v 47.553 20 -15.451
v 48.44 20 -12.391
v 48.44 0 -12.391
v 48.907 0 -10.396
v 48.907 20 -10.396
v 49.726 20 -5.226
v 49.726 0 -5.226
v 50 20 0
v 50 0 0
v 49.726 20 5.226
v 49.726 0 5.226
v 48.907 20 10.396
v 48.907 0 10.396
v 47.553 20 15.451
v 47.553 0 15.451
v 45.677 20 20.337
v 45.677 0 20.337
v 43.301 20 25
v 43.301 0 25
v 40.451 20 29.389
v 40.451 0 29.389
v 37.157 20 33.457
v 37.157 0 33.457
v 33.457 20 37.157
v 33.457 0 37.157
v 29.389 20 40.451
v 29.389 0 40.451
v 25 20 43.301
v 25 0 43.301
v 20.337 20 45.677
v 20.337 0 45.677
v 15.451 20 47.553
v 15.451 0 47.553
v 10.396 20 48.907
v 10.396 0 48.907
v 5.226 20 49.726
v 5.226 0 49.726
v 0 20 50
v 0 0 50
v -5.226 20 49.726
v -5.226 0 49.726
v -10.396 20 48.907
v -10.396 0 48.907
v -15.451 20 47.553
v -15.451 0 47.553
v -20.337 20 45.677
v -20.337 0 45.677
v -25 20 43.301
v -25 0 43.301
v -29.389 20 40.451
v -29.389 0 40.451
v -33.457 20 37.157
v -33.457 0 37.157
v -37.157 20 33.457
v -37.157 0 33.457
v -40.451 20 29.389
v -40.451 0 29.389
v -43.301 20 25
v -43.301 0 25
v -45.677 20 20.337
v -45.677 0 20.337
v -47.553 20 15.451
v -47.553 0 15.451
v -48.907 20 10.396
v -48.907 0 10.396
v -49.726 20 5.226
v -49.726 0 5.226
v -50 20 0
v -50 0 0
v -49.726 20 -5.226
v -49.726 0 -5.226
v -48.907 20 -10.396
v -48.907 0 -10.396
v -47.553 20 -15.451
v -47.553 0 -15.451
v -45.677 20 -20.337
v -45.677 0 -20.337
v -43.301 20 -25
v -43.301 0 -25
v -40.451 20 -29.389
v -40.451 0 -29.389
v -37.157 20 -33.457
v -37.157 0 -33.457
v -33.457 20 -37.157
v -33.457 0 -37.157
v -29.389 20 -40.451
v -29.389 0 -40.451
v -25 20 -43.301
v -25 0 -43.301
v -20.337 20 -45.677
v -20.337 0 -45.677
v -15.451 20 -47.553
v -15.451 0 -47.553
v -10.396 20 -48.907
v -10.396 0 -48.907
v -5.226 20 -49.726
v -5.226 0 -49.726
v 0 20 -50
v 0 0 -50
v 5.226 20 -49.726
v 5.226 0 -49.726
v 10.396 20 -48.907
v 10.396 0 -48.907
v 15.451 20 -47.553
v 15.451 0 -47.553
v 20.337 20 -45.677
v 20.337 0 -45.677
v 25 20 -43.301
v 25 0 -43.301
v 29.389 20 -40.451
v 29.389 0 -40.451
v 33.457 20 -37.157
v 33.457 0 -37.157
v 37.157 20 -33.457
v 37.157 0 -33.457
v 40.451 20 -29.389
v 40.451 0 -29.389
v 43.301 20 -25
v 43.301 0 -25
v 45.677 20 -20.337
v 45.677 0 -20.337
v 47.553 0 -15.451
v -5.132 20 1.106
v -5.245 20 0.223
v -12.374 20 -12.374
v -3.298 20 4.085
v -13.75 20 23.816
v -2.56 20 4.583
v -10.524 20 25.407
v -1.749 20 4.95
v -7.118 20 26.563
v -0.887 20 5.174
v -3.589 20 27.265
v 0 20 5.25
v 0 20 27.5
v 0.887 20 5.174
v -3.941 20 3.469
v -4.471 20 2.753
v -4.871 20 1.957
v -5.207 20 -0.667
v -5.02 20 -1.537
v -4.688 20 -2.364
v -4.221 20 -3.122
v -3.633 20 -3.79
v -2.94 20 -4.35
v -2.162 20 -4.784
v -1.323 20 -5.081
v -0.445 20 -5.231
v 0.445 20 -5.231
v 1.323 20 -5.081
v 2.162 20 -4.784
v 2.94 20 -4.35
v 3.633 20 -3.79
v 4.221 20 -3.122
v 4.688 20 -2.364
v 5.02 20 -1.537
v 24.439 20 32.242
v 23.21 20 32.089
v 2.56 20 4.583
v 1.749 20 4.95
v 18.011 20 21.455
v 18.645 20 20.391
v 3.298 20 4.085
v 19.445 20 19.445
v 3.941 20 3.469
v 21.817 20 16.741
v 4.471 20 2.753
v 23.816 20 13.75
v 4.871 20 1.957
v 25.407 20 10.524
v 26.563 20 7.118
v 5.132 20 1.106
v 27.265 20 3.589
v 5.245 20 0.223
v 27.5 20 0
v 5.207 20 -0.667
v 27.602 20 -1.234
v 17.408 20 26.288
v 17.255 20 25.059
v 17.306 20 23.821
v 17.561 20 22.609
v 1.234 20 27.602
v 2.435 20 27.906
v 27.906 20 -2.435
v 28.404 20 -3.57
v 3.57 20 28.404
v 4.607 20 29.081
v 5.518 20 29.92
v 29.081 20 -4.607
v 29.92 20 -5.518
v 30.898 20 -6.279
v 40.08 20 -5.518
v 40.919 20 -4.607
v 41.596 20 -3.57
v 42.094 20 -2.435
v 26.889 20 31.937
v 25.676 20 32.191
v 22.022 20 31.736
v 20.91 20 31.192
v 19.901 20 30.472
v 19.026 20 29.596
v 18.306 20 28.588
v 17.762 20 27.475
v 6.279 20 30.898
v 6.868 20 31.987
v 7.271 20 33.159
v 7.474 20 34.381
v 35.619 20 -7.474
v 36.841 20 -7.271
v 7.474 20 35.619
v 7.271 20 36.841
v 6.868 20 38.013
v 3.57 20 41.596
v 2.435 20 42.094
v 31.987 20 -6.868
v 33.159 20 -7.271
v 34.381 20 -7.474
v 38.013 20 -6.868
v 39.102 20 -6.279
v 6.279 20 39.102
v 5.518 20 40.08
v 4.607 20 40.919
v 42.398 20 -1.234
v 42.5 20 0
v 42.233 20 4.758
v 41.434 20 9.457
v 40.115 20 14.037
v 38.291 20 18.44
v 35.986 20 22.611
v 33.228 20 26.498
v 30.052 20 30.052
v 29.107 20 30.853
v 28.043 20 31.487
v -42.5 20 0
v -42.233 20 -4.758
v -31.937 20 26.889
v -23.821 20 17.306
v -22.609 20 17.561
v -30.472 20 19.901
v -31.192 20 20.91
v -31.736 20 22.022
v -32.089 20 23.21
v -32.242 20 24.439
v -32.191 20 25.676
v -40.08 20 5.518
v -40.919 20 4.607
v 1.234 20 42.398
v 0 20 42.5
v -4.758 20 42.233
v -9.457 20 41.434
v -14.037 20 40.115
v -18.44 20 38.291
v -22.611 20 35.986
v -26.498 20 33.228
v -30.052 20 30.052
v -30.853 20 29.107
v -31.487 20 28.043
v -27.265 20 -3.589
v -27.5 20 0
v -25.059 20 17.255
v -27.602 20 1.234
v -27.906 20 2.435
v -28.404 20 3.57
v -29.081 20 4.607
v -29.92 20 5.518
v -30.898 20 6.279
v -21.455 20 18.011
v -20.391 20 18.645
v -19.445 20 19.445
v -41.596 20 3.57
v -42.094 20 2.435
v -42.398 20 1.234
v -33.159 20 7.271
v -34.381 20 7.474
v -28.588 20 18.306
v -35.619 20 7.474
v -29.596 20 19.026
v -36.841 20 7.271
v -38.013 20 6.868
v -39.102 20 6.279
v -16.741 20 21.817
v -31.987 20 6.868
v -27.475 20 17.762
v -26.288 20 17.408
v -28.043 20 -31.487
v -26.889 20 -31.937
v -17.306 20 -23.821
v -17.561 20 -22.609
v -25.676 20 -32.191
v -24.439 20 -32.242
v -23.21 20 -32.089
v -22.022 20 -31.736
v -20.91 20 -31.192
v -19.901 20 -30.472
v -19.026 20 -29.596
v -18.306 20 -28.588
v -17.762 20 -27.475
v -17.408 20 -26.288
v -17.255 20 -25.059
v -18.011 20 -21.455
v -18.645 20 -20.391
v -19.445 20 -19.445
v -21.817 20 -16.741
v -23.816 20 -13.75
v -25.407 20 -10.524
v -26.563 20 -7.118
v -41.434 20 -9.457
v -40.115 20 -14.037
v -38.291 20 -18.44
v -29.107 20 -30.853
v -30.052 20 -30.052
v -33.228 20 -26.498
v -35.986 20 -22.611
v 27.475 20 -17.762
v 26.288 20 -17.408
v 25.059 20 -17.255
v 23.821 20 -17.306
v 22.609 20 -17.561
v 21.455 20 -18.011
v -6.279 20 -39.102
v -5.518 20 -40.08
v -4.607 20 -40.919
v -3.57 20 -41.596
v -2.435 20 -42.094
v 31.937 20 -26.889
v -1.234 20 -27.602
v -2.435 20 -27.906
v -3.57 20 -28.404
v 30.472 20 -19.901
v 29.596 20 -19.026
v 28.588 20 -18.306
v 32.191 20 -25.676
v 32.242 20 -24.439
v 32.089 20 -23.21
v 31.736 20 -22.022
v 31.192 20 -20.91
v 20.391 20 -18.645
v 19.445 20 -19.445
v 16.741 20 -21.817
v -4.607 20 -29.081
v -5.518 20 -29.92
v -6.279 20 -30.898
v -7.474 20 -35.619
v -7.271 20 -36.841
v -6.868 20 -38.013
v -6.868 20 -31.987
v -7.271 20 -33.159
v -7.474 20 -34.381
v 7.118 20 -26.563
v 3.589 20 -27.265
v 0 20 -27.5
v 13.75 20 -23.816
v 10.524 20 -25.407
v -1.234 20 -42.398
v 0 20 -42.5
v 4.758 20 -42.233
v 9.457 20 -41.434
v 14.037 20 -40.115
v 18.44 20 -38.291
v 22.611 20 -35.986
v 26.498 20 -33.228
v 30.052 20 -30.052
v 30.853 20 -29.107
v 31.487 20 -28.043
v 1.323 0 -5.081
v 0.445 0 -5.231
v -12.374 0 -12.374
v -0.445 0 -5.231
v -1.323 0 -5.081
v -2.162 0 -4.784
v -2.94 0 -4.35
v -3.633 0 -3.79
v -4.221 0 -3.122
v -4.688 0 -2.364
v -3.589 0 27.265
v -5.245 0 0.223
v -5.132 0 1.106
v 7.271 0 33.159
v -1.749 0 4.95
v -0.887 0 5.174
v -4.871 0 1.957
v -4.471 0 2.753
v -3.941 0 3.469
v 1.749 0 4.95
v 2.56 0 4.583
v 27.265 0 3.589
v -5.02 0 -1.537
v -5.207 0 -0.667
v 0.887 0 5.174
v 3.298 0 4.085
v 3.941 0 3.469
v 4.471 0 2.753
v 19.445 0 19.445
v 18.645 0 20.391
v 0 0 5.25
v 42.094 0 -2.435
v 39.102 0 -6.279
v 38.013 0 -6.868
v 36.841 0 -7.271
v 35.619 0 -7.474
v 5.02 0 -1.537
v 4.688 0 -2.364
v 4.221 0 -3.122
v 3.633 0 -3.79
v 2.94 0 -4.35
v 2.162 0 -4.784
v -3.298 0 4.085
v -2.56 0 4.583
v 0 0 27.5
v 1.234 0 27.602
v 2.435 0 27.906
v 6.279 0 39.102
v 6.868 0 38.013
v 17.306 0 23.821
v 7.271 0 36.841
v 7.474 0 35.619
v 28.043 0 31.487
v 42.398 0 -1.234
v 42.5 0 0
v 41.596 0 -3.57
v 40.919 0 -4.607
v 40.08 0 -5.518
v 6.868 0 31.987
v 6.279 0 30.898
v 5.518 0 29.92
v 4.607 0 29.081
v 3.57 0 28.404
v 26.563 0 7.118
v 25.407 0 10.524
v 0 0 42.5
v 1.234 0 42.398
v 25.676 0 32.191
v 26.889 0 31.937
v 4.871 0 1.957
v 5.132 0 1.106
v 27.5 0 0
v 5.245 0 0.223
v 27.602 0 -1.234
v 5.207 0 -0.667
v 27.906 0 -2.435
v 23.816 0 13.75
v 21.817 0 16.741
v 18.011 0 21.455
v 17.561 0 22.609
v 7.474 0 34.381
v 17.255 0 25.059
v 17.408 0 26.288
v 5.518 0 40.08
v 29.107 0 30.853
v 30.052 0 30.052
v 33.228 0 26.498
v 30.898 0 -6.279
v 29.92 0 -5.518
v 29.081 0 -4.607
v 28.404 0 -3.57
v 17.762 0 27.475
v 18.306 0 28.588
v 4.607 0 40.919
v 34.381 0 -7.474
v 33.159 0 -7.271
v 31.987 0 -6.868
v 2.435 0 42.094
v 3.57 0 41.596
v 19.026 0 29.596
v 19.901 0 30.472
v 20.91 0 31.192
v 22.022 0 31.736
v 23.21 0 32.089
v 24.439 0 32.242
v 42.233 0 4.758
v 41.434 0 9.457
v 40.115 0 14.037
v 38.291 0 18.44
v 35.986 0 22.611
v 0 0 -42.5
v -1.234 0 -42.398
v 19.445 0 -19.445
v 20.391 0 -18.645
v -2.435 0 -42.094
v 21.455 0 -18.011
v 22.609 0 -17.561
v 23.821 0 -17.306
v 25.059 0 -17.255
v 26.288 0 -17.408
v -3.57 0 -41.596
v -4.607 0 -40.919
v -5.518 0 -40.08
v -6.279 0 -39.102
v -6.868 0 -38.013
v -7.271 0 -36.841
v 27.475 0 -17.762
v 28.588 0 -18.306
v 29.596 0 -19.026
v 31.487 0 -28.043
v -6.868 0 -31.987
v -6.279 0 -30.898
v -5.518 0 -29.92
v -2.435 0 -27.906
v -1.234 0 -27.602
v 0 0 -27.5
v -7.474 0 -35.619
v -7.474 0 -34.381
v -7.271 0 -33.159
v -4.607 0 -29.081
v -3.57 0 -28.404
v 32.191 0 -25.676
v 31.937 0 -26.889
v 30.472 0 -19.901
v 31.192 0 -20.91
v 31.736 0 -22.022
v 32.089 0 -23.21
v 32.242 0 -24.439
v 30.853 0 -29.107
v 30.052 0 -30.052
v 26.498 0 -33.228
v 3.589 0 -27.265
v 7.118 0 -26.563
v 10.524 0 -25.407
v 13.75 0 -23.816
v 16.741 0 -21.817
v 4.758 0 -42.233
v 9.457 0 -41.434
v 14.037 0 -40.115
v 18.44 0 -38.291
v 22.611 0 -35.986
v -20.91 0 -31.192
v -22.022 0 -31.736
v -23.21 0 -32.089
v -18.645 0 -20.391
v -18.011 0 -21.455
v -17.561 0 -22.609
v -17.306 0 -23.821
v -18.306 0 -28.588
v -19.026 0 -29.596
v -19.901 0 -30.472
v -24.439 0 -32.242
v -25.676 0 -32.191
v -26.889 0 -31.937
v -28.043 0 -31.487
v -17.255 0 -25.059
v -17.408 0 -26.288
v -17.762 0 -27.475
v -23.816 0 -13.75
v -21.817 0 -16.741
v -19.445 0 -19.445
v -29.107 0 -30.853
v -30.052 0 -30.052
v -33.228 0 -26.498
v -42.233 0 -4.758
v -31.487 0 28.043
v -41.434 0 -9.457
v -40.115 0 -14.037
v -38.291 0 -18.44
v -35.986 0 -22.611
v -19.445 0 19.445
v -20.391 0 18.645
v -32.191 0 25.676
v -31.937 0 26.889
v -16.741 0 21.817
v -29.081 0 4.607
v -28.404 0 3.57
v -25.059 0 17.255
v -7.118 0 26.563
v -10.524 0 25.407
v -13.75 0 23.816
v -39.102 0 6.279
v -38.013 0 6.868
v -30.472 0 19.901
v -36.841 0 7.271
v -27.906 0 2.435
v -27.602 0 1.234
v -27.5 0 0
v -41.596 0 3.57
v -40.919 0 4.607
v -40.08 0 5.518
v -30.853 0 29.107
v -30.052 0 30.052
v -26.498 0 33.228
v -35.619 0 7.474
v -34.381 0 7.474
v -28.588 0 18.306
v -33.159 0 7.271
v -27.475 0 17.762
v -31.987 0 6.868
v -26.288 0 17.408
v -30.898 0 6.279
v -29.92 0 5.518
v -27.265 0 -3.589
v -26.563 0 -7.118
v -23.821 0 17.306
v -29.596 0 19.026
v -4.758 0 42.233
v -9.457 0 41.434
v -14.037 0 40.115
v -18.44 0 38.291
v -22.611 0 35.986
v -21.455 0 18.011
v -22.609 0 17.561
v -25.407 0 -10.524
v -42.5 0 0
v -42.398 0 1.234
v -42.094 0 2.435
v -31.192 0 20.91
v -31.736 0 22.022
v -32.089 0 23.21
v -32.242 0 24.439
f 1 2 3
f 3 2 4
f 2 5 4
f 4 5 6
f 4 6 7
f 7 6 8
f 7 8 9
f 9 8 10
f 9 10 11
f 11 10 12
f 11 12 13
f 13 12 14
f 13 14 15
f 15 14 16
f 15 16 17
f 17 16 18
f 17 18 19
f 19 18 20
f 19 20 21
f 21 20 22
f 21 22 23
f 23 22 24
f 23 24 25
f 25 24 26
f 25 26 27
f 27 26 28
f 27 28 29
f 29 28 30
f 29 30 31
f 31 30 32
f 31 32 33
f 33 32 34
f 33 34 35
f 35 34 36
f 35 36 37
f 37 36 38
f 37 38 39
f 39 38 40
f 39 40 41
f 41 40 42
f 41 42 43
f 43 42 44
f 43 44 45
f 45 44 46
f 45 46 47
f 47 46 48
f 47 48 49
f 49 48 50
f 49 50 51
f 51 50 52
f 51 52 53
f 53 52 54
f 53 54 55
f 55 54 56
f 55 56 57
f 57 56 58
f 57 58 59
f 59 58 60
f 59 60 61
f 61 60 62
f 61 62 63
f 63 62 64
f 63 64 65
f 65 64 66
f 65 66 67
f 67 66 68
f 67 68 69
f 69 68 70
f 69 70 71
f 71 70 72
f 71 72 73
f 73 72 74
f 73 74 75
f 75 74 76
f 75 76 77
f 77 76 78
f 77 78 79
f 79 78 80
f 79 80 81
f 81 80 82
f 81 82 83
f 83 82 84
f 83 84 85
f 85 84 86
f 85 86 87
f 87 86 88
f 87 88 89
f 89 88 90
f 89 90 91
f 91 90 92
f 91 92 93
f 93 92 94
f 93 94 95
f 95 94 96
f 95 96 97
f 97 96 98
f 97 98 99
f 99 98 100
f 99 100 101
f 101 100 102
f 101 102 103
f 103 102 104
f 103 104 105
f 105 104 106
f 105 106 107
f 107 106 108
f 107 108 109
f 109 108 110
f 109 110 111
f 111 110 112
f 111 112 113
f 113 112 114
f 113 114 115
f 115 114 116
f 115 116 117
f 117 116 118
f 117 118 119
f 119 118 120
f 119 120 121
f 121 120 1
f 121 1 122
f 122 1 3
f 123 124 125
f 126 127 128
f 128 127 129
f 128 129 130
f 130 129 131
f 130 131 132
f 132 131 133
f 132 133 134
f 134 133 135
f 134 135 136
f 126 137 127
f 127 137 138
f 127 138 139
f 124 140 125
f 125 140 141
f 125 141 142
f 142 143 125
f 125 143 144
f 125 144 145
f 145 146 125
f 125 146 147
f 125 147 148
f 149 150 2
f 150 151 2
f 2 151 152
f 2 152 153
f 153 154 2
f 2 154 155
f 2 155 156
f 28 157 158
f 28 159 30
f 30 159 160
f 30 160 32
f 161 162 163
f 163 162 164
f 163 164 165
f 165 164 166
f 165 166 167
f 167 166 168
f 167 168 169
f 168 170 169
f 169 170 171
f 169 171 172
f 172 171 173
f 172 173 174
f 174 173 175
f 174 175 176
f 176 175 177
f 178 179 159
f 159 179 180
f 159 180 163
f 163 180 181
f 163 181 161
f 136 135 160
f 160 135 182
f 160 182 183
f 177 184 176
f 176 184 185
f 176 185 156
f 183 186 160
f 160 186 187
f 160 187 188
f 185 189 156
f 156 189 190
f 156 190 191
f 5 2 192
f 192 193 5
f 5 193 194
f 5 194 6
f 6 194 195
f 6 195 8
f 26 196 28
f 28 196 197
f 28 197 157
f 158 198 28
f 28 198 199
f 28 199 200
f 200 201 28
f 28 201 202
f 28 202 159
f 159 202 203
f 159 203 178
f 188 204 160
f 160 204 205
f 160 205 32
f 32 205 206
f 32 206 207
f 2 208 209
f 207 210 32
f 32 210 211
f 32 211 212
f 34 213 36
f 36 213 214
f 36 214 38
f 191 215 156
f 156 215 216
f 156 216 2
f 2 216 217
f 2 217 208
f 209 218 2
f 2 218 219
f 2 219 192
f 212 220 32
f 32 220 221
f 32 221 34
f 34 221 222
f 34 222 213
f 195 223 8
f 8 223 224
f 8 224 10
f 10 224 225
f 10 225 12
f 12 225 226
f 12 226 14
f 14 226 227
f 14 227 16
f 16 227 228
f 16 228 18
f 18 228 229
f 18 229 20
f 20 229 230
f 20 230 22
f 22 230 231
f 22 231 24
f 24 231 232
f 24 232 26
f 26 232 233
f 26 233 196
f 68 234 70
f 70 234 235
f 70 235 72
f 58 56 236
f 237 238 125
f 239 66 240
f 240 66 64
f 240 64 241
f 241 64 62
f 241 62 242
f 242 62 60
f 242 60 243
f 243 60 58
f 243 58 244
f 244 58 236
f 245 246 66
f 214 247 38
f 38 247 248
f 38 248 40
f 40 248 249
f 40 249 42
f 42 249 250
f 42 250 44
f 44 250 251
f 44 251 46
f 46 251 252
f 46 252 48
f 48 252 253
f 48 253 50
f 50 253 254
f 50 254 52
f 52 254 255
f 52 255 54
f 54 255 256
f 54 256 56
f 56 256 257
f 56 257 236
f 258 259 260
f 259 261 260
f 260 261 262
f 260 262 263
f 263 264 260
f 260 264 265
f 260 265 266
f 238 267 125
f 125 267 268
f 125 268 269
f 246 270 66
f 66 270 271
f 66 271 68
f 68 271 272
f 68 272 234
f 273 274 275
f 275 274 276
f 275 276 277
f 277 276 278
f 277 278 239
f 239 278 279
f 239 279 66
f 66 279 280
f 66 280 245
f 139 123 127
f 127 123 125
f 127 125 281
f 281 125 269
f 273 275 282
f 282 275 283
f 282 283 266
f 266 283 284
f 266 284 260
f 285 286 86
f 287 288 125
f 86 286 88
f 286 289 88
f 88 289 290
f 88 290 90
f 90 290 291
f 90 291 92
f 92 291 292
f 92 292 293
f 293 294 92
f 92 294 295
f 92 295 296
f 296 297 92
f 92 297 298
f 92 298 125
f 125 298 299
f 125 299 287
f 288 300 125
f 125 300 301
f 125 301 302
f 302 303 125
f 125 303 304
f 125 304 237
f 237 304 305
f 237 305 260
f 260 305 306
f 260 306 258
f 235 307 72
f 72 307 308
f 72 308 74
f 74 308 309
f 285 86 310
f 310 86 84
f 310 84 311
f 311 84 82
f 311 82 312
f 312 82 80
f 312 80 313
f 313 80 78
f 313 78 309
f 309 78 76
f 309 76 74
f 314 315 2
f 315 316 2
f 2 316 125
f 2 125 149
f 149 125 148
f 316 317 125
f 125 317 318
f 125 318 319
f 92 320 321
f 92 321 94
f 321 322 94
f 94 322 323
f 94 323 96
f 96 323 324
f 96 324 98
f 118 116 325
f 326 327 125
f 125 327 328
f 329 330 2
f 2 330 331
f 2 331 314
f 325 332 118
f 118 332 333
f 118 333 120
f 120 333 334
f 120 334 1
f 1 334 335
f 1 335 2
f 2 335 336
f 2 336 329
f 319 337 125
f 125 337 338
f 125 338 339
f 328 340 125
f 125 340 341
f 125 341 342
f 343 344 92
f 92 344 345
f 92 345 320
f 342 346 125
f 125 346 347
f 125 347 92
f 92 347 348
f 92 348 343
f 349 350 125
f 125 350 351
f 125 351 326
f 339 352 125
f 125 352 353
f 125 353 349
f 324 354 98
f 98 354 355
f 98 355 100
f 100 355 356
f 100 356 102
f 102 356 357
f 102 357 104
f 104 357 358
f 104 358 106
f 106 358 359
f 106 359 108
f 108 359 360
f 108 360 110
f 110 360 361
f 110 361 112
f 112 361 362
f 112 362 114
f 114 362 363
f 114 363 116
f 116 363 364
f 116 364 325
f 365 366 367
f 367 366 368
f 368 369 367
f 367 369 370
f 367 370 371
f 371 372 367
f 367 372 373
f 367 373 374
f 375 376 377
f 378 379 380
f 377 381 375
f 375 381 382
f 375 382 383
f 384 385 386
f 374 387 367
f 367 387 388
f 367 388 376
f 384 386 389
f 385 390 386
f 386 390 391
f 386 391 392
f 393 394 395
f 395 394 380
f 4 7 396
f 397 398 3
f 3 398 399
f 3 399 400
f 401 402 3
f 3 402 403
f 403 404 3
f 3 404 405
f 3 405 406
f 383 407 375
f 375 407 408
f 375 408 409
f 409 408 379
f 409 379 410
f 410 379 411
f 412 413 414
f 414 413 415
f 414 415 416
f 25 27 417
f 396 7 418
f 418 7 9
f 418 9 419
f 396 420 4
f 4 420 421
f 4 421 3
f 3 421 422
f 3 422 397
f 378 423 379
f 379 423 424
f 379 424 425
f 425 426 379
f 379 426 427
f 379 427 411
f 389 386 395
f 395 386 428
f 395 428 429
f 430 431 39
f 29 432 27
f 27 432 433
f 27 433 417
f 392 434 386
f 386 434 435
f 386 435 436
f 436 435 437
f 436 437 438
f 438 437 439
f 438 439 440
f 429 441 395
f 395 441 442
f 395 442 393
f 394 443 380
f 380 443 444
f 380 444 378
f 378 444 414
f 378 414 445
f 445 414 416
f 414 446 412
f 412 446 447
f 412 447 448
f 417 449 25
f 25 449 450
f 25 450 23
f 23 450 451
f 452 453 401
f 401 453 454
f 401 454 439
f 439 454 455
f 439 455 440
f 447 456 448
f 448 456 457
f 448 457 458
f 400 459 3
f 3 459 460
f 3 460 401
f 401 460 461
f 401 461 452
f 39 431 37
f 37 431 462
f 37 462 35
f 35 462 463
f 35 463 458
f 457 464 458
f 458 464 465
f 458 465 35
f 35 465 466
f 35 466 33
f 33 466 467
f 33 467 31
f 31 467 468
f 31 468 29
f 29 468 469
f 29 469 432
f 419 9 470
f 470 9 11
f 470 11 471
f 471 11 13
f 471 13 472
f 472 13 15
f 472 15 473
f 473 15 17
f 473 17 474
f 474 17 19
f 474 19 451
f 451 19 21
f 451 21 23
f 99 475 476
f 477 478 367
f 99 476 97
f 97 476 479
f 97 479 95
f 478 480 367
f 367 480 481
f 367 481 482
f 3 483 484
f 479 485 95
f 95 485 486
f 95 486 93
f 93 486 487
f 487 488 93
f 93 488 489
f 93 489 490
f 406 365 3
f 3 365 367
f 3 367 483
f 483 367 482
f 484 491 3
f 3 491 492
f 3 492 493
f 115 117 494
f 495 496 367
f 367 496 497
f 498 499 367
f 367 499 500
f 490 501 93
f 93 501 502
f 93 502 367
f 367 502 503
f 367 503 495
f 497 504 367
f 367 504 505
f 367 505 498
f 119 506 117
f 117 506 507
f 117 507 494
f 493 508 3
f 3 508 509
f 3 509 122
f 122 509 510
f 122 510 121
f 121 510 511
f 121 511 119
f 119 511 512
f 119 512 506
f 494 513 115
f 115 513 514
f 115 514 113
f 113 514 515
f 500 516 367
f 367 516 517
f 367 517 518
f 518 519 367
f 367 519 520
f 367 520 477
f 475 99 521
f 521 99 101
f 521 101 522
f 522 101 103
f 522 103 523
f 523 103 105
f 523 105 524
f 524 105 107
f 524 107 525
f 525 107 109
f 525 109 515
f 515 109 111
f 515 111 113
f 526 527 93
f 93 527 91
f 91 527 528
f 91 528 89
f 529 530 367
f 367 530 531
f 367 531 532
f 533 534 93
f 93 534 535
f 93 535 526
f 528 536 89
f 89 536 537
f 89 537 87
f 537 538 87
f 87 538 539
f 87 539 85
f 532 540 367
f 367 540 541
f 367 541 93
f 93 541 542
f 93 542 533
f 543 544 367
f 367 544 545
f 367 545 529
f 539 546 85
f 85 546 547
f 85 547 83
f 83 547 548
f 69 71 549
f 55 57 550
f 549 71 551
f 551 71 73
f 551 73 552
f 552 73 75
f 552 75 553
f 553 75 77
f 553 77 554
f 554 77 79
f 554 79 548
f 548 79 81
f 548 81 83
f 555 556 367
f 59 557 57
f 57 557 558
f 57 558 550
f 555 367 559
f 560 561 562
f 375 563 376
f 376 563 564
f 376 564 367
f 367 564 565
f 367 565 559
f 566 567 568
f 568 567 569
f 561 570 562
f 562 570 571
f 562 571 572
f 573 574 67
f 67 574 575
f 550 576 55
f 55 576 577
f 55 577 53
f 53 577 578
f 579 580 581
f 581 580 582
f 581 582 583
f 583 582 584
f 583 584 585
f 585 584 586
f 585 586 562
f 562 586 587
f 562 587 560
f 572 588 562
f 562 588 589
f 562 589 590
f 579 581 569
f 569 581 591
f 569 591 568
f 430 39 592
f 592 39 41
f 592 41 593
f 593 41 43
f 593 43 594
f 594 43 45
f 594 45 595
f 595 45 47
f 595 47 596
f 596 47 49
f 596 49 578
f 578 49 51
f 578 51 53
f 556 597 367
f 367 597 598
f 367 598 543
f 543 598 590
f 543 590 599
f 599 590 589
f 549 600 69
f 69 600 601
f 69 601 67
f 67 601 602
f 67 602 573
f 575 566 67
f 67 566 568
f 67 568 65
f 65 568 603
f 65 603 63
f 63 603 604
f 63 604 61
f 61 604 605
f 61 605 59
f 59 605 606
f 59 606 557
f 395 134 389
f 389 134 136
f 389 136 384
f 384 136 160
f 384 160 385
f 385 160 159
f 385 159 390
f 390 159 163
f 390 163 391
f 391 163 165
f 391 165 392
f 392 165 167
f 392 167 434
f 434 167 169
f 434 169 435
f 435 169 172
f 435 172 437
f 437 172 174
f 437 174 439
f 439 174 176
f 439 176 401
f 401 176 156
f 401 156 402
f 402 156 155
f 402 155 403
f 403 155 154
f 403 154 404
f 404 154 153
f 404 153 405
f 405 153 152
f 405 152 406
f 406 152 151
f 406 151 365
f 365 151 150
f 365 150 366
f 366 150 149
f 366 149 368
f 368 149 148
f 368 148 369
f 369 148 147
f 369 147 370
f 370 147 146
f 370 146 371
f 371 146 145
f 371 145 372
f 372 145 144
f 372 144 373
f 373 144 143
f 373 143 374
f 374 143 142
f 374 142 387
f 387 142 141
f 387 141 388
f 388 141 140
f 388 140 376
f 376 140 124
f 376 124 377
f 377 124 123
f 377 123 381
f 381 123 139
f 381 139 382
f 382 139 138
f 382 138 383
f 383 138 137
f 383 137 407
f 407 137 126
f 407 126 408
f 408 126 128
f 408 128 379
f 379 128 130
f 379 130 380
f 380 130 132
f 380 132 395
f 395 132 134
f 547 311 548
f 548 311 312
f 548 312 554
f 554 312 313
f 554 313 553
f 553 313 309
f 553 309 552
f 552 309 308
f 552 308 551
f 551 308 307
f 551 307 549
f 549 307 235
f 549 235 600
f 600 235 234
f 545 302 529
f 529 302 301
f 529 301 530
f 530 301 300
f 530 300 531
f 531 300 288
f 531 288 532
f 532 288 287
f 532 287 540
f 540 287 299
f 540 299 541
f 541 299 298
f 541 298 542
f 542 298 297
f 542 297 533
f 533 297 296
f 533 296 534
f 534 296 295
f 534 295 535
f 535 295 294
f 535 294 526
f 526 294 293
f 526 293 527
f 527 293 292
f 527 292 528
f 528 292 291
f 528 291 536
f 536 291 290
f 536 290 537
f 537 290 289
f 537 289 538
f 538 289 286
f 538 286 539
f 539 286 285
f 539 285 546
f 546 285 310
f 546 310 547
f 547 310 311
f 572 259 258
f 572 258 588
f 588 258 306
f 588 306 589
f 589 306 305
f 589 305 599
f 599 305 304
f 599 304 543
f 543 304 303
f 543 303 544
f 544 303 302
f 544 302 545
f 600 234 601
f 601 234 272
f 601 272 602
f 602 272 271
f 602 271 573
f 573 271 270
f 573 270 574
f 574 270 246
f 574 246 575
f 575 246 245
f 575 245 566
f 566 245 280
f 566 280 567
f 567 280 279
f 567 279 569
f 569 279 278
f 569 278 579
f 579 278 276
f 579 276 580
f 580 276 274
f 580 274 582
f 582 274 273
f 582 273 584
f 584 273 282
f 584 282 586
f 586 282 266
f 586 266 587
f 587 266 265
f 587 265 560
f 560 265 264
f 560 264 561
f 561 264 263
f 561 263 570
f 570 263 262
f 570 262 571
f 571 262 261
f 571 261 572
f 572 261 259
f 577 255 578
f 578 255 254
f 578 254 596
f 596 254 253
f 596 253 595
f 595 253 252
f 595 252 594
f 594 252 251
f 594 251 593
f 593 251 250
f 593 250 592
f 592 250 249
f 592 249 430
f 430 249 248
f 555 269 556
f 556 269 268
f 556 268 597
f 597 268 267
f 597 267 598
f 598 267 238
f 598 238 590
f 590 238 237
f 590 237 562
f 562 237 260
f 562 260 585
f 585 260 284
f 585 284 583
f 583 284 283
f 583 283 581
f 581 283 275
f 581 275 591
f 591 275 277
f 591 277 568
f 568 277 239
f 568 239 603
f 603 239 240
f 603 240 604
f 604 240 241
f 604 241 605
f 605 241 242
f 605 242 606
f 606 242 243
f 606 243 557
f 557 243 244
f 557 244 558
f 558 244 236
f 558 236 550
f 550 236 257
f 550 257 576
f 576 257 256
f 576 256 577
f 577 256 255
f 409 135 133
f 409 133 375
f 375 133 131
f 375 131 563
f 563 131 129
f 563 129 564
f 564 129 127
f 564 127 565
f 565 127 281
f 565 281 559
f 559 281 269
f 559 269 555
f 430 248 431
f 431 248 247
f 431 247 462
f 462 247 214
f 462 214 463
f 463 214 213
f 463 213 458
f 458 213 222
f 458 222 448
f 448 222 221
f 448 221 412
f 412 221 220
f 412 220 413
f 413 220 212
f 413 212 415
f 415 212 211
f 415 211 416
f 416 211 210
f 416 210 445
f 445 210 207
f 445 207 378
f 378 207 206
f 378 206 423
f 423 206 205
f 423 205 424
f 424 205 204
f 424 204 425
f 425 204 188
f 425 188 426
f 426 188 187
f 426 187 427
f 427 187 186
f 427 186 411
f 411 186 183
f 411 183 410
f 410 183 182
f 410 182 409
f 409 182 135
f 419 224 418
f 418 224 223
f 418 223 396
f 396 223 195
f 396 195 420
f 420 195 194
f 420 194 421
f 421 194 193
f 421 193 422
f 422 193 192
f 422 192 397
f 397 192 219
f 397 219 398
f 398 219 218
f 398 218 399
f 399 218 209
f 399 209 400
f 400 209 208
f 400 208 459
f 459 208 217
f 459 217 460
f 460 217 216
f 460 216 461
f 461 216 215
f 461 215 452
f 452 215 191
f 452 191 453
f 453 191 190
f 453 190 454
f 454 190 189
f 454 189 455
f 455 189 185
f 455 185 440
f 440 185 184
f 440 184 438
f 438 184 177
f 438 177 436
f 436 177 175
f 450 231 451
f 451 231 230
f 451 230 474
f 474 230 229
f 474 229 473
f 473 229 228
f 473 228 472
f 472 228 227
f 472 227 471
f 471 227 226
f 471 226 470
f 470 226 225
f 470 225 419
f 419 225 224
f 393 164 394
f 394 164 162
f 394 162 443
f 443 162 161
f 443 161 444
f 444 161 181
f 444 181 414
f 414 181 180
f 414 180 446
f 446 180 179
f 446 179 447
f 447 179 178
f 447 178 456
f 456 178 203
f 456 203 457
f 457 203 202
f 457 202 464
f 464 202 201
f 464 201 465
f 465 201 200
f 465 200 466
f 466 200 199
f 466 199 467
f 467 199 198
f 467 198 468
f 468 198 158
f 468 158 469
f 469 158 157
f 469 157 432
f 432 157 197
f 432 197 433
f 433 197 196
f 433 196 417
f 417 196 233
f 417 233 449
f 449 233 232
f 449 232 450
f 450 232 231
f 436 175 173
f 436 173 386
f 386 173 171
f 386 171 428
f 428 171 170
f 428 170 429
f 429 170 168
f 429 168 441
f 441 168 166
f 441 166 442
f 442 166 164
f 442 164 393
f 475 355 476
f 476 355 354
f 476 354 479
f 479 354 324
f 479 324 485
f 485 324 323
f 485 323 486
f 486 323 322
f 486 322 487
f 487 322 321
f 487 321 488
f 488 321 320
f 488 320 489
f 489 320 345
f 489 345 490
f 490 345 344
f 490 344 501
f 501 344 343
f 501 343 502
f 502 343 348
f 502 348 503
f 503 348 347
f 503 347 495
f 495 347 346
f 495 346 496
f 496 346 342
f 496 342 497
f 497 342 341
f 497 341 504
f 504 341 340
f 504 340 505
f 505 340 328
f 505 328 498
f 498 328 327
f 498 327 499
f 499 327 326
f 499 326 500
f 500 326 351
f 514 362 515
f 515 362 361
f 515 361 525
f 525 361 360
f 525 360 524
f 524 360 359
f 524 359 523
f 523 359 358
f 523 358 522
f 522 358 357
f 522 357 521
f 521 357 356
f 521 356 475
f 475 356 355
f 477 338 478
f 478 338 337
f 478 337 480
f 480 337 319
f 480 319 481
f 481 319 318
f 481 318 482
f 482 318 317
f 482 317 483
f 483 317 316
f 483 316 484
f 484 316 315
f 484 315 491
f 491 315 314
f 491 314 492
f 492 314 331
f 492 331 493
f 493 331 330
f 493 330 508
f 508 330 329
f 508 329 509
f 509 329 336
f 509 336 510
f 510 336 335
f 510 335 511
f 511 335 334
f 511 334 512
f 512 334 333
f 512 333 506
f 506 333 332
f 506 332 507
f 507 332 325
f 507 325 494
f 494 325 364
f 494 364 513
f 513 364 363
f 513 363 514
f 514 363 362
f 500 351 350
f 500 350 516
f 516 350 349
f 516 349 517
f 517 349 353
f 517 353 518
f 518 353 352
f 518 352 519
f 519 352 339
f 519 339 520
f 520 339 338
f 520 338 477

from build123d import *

# Parameters (mm, degrees)
SKETCH_1_R          = 50
EXTRUDE_1_DEPTH     = 20
SKETCH_2_R          = 5.25
CUT_EXTRUDE_1_DEPTH = 20
CUT_EXTRUDE_2_DEPTH = 20


with BuildPart() as part:
    # 草图1 → 凸台-拉伸1 (new body)
    with BuildSketch(Plane(origin=(0, 0, 0), x_dir=(1, 0, 0), z_dir=(0, 1, 0))):
        with Locations(Location((0, 0, 0), (0, 0, 270))):
            Circle(SKETCH_1_R)
    extrude(amount=EXTRUDE_1_DEPTH)

    # 草图2 → 切除-拉伸1 (cut)
    with BuildSketch(Plane(origin=(0, 20, 0), x_dir=(1, 0, 0), z_dir=(0, 1, 0))):
        with Locations(Location((0, 0, 0), (0, 0, 270))):
            Circle(SKETCH_2_R)
    extrude(amount=-CUT_EXTRUDE_1_DEPTH, mode=Mode.SUBTRACT)

    # 草图3 → 切除-拉伸2 (cut)
    with BuildSketch(Plane(origin=(0, 20, 0), x_dir=(1, 0, 0), z_dir=(0, 1, 0))):
        with BuildLine():
            ThreePointArc((42.5, 0), (35, 7.5), (27.5, 0))
            ThreePointArc((27.5, 0), (25.406687144, -10.52379439), (19.445436483, -19.445436483))
            ThreePointArc((19.445436483, -19.445436483), (19.445436477, -30.052038195), (30.052038189, -30.052038212))
            ThreePointArc((30.052038189, -30.052038212), (39.264880129, -16.264045883), (42.5, 0))
        make_face()
        with BuildLine():
            ThreePointArc((2e-09, 27.5), (10.523794391, 25.406687144), (19.445436483, 19.445436483))
            ThreePointArc((19.445436483, 19.445436483), (30.0520382, 19.445436483), (30.0520382, 30.0520382))
            ThreePointArc((30.0520382, 30.0520382), (16.264045902, 39.264880121), (5.8e-08, 42.5))
            ThreePointArc((5.8e-08, 42.5), (-7.5, 35.000000028), (2e-09, 27.5))
        make_face()
        with BuildLine():
            ThreePointArc((-30.0520382, -30.0520382), (-16.264045799, -39.264880163), (1.65e-07, -42.5))
            ThreePointArc((1.65e-07, -42.5), (7.5, -34.999999948), (6.1e-08, -27.5))
            ThreePointArc((6.1e-08, -27.5), (-10.523794348, -25.406687162), (-19.44543646, -19.445436505))
            ThreePointArc((-19.44543646, -19.445436505), (-30.052038189, -19.445436472), (-30.0520382, -30.0520382))
        make_face()
        with BuildLine():
            ThreePointArc((-27.5, 0), (-25.406687154, 10.523794365), (-19.445436521, 19.445436445))
            ThreePointArc((-19.445436521, 19.445436445), (-19.445436492, 30.05203821), (-30.052038258, 30.052038143))
            ThreePointArc((-30.052038258, 30.052038143), (-39.264880164, 16.264045797), (-42.5, -8.9e-08))
            ThreePointArc((-42.5, -8.9e-08), (-34.999999956, -7.5), (-27.5, 0))
        make_face()
    extrude(amount=-CUT_EXTRUDE_2_DEPTH, mode=Mode.SUBTRACT)


solid = part.part
